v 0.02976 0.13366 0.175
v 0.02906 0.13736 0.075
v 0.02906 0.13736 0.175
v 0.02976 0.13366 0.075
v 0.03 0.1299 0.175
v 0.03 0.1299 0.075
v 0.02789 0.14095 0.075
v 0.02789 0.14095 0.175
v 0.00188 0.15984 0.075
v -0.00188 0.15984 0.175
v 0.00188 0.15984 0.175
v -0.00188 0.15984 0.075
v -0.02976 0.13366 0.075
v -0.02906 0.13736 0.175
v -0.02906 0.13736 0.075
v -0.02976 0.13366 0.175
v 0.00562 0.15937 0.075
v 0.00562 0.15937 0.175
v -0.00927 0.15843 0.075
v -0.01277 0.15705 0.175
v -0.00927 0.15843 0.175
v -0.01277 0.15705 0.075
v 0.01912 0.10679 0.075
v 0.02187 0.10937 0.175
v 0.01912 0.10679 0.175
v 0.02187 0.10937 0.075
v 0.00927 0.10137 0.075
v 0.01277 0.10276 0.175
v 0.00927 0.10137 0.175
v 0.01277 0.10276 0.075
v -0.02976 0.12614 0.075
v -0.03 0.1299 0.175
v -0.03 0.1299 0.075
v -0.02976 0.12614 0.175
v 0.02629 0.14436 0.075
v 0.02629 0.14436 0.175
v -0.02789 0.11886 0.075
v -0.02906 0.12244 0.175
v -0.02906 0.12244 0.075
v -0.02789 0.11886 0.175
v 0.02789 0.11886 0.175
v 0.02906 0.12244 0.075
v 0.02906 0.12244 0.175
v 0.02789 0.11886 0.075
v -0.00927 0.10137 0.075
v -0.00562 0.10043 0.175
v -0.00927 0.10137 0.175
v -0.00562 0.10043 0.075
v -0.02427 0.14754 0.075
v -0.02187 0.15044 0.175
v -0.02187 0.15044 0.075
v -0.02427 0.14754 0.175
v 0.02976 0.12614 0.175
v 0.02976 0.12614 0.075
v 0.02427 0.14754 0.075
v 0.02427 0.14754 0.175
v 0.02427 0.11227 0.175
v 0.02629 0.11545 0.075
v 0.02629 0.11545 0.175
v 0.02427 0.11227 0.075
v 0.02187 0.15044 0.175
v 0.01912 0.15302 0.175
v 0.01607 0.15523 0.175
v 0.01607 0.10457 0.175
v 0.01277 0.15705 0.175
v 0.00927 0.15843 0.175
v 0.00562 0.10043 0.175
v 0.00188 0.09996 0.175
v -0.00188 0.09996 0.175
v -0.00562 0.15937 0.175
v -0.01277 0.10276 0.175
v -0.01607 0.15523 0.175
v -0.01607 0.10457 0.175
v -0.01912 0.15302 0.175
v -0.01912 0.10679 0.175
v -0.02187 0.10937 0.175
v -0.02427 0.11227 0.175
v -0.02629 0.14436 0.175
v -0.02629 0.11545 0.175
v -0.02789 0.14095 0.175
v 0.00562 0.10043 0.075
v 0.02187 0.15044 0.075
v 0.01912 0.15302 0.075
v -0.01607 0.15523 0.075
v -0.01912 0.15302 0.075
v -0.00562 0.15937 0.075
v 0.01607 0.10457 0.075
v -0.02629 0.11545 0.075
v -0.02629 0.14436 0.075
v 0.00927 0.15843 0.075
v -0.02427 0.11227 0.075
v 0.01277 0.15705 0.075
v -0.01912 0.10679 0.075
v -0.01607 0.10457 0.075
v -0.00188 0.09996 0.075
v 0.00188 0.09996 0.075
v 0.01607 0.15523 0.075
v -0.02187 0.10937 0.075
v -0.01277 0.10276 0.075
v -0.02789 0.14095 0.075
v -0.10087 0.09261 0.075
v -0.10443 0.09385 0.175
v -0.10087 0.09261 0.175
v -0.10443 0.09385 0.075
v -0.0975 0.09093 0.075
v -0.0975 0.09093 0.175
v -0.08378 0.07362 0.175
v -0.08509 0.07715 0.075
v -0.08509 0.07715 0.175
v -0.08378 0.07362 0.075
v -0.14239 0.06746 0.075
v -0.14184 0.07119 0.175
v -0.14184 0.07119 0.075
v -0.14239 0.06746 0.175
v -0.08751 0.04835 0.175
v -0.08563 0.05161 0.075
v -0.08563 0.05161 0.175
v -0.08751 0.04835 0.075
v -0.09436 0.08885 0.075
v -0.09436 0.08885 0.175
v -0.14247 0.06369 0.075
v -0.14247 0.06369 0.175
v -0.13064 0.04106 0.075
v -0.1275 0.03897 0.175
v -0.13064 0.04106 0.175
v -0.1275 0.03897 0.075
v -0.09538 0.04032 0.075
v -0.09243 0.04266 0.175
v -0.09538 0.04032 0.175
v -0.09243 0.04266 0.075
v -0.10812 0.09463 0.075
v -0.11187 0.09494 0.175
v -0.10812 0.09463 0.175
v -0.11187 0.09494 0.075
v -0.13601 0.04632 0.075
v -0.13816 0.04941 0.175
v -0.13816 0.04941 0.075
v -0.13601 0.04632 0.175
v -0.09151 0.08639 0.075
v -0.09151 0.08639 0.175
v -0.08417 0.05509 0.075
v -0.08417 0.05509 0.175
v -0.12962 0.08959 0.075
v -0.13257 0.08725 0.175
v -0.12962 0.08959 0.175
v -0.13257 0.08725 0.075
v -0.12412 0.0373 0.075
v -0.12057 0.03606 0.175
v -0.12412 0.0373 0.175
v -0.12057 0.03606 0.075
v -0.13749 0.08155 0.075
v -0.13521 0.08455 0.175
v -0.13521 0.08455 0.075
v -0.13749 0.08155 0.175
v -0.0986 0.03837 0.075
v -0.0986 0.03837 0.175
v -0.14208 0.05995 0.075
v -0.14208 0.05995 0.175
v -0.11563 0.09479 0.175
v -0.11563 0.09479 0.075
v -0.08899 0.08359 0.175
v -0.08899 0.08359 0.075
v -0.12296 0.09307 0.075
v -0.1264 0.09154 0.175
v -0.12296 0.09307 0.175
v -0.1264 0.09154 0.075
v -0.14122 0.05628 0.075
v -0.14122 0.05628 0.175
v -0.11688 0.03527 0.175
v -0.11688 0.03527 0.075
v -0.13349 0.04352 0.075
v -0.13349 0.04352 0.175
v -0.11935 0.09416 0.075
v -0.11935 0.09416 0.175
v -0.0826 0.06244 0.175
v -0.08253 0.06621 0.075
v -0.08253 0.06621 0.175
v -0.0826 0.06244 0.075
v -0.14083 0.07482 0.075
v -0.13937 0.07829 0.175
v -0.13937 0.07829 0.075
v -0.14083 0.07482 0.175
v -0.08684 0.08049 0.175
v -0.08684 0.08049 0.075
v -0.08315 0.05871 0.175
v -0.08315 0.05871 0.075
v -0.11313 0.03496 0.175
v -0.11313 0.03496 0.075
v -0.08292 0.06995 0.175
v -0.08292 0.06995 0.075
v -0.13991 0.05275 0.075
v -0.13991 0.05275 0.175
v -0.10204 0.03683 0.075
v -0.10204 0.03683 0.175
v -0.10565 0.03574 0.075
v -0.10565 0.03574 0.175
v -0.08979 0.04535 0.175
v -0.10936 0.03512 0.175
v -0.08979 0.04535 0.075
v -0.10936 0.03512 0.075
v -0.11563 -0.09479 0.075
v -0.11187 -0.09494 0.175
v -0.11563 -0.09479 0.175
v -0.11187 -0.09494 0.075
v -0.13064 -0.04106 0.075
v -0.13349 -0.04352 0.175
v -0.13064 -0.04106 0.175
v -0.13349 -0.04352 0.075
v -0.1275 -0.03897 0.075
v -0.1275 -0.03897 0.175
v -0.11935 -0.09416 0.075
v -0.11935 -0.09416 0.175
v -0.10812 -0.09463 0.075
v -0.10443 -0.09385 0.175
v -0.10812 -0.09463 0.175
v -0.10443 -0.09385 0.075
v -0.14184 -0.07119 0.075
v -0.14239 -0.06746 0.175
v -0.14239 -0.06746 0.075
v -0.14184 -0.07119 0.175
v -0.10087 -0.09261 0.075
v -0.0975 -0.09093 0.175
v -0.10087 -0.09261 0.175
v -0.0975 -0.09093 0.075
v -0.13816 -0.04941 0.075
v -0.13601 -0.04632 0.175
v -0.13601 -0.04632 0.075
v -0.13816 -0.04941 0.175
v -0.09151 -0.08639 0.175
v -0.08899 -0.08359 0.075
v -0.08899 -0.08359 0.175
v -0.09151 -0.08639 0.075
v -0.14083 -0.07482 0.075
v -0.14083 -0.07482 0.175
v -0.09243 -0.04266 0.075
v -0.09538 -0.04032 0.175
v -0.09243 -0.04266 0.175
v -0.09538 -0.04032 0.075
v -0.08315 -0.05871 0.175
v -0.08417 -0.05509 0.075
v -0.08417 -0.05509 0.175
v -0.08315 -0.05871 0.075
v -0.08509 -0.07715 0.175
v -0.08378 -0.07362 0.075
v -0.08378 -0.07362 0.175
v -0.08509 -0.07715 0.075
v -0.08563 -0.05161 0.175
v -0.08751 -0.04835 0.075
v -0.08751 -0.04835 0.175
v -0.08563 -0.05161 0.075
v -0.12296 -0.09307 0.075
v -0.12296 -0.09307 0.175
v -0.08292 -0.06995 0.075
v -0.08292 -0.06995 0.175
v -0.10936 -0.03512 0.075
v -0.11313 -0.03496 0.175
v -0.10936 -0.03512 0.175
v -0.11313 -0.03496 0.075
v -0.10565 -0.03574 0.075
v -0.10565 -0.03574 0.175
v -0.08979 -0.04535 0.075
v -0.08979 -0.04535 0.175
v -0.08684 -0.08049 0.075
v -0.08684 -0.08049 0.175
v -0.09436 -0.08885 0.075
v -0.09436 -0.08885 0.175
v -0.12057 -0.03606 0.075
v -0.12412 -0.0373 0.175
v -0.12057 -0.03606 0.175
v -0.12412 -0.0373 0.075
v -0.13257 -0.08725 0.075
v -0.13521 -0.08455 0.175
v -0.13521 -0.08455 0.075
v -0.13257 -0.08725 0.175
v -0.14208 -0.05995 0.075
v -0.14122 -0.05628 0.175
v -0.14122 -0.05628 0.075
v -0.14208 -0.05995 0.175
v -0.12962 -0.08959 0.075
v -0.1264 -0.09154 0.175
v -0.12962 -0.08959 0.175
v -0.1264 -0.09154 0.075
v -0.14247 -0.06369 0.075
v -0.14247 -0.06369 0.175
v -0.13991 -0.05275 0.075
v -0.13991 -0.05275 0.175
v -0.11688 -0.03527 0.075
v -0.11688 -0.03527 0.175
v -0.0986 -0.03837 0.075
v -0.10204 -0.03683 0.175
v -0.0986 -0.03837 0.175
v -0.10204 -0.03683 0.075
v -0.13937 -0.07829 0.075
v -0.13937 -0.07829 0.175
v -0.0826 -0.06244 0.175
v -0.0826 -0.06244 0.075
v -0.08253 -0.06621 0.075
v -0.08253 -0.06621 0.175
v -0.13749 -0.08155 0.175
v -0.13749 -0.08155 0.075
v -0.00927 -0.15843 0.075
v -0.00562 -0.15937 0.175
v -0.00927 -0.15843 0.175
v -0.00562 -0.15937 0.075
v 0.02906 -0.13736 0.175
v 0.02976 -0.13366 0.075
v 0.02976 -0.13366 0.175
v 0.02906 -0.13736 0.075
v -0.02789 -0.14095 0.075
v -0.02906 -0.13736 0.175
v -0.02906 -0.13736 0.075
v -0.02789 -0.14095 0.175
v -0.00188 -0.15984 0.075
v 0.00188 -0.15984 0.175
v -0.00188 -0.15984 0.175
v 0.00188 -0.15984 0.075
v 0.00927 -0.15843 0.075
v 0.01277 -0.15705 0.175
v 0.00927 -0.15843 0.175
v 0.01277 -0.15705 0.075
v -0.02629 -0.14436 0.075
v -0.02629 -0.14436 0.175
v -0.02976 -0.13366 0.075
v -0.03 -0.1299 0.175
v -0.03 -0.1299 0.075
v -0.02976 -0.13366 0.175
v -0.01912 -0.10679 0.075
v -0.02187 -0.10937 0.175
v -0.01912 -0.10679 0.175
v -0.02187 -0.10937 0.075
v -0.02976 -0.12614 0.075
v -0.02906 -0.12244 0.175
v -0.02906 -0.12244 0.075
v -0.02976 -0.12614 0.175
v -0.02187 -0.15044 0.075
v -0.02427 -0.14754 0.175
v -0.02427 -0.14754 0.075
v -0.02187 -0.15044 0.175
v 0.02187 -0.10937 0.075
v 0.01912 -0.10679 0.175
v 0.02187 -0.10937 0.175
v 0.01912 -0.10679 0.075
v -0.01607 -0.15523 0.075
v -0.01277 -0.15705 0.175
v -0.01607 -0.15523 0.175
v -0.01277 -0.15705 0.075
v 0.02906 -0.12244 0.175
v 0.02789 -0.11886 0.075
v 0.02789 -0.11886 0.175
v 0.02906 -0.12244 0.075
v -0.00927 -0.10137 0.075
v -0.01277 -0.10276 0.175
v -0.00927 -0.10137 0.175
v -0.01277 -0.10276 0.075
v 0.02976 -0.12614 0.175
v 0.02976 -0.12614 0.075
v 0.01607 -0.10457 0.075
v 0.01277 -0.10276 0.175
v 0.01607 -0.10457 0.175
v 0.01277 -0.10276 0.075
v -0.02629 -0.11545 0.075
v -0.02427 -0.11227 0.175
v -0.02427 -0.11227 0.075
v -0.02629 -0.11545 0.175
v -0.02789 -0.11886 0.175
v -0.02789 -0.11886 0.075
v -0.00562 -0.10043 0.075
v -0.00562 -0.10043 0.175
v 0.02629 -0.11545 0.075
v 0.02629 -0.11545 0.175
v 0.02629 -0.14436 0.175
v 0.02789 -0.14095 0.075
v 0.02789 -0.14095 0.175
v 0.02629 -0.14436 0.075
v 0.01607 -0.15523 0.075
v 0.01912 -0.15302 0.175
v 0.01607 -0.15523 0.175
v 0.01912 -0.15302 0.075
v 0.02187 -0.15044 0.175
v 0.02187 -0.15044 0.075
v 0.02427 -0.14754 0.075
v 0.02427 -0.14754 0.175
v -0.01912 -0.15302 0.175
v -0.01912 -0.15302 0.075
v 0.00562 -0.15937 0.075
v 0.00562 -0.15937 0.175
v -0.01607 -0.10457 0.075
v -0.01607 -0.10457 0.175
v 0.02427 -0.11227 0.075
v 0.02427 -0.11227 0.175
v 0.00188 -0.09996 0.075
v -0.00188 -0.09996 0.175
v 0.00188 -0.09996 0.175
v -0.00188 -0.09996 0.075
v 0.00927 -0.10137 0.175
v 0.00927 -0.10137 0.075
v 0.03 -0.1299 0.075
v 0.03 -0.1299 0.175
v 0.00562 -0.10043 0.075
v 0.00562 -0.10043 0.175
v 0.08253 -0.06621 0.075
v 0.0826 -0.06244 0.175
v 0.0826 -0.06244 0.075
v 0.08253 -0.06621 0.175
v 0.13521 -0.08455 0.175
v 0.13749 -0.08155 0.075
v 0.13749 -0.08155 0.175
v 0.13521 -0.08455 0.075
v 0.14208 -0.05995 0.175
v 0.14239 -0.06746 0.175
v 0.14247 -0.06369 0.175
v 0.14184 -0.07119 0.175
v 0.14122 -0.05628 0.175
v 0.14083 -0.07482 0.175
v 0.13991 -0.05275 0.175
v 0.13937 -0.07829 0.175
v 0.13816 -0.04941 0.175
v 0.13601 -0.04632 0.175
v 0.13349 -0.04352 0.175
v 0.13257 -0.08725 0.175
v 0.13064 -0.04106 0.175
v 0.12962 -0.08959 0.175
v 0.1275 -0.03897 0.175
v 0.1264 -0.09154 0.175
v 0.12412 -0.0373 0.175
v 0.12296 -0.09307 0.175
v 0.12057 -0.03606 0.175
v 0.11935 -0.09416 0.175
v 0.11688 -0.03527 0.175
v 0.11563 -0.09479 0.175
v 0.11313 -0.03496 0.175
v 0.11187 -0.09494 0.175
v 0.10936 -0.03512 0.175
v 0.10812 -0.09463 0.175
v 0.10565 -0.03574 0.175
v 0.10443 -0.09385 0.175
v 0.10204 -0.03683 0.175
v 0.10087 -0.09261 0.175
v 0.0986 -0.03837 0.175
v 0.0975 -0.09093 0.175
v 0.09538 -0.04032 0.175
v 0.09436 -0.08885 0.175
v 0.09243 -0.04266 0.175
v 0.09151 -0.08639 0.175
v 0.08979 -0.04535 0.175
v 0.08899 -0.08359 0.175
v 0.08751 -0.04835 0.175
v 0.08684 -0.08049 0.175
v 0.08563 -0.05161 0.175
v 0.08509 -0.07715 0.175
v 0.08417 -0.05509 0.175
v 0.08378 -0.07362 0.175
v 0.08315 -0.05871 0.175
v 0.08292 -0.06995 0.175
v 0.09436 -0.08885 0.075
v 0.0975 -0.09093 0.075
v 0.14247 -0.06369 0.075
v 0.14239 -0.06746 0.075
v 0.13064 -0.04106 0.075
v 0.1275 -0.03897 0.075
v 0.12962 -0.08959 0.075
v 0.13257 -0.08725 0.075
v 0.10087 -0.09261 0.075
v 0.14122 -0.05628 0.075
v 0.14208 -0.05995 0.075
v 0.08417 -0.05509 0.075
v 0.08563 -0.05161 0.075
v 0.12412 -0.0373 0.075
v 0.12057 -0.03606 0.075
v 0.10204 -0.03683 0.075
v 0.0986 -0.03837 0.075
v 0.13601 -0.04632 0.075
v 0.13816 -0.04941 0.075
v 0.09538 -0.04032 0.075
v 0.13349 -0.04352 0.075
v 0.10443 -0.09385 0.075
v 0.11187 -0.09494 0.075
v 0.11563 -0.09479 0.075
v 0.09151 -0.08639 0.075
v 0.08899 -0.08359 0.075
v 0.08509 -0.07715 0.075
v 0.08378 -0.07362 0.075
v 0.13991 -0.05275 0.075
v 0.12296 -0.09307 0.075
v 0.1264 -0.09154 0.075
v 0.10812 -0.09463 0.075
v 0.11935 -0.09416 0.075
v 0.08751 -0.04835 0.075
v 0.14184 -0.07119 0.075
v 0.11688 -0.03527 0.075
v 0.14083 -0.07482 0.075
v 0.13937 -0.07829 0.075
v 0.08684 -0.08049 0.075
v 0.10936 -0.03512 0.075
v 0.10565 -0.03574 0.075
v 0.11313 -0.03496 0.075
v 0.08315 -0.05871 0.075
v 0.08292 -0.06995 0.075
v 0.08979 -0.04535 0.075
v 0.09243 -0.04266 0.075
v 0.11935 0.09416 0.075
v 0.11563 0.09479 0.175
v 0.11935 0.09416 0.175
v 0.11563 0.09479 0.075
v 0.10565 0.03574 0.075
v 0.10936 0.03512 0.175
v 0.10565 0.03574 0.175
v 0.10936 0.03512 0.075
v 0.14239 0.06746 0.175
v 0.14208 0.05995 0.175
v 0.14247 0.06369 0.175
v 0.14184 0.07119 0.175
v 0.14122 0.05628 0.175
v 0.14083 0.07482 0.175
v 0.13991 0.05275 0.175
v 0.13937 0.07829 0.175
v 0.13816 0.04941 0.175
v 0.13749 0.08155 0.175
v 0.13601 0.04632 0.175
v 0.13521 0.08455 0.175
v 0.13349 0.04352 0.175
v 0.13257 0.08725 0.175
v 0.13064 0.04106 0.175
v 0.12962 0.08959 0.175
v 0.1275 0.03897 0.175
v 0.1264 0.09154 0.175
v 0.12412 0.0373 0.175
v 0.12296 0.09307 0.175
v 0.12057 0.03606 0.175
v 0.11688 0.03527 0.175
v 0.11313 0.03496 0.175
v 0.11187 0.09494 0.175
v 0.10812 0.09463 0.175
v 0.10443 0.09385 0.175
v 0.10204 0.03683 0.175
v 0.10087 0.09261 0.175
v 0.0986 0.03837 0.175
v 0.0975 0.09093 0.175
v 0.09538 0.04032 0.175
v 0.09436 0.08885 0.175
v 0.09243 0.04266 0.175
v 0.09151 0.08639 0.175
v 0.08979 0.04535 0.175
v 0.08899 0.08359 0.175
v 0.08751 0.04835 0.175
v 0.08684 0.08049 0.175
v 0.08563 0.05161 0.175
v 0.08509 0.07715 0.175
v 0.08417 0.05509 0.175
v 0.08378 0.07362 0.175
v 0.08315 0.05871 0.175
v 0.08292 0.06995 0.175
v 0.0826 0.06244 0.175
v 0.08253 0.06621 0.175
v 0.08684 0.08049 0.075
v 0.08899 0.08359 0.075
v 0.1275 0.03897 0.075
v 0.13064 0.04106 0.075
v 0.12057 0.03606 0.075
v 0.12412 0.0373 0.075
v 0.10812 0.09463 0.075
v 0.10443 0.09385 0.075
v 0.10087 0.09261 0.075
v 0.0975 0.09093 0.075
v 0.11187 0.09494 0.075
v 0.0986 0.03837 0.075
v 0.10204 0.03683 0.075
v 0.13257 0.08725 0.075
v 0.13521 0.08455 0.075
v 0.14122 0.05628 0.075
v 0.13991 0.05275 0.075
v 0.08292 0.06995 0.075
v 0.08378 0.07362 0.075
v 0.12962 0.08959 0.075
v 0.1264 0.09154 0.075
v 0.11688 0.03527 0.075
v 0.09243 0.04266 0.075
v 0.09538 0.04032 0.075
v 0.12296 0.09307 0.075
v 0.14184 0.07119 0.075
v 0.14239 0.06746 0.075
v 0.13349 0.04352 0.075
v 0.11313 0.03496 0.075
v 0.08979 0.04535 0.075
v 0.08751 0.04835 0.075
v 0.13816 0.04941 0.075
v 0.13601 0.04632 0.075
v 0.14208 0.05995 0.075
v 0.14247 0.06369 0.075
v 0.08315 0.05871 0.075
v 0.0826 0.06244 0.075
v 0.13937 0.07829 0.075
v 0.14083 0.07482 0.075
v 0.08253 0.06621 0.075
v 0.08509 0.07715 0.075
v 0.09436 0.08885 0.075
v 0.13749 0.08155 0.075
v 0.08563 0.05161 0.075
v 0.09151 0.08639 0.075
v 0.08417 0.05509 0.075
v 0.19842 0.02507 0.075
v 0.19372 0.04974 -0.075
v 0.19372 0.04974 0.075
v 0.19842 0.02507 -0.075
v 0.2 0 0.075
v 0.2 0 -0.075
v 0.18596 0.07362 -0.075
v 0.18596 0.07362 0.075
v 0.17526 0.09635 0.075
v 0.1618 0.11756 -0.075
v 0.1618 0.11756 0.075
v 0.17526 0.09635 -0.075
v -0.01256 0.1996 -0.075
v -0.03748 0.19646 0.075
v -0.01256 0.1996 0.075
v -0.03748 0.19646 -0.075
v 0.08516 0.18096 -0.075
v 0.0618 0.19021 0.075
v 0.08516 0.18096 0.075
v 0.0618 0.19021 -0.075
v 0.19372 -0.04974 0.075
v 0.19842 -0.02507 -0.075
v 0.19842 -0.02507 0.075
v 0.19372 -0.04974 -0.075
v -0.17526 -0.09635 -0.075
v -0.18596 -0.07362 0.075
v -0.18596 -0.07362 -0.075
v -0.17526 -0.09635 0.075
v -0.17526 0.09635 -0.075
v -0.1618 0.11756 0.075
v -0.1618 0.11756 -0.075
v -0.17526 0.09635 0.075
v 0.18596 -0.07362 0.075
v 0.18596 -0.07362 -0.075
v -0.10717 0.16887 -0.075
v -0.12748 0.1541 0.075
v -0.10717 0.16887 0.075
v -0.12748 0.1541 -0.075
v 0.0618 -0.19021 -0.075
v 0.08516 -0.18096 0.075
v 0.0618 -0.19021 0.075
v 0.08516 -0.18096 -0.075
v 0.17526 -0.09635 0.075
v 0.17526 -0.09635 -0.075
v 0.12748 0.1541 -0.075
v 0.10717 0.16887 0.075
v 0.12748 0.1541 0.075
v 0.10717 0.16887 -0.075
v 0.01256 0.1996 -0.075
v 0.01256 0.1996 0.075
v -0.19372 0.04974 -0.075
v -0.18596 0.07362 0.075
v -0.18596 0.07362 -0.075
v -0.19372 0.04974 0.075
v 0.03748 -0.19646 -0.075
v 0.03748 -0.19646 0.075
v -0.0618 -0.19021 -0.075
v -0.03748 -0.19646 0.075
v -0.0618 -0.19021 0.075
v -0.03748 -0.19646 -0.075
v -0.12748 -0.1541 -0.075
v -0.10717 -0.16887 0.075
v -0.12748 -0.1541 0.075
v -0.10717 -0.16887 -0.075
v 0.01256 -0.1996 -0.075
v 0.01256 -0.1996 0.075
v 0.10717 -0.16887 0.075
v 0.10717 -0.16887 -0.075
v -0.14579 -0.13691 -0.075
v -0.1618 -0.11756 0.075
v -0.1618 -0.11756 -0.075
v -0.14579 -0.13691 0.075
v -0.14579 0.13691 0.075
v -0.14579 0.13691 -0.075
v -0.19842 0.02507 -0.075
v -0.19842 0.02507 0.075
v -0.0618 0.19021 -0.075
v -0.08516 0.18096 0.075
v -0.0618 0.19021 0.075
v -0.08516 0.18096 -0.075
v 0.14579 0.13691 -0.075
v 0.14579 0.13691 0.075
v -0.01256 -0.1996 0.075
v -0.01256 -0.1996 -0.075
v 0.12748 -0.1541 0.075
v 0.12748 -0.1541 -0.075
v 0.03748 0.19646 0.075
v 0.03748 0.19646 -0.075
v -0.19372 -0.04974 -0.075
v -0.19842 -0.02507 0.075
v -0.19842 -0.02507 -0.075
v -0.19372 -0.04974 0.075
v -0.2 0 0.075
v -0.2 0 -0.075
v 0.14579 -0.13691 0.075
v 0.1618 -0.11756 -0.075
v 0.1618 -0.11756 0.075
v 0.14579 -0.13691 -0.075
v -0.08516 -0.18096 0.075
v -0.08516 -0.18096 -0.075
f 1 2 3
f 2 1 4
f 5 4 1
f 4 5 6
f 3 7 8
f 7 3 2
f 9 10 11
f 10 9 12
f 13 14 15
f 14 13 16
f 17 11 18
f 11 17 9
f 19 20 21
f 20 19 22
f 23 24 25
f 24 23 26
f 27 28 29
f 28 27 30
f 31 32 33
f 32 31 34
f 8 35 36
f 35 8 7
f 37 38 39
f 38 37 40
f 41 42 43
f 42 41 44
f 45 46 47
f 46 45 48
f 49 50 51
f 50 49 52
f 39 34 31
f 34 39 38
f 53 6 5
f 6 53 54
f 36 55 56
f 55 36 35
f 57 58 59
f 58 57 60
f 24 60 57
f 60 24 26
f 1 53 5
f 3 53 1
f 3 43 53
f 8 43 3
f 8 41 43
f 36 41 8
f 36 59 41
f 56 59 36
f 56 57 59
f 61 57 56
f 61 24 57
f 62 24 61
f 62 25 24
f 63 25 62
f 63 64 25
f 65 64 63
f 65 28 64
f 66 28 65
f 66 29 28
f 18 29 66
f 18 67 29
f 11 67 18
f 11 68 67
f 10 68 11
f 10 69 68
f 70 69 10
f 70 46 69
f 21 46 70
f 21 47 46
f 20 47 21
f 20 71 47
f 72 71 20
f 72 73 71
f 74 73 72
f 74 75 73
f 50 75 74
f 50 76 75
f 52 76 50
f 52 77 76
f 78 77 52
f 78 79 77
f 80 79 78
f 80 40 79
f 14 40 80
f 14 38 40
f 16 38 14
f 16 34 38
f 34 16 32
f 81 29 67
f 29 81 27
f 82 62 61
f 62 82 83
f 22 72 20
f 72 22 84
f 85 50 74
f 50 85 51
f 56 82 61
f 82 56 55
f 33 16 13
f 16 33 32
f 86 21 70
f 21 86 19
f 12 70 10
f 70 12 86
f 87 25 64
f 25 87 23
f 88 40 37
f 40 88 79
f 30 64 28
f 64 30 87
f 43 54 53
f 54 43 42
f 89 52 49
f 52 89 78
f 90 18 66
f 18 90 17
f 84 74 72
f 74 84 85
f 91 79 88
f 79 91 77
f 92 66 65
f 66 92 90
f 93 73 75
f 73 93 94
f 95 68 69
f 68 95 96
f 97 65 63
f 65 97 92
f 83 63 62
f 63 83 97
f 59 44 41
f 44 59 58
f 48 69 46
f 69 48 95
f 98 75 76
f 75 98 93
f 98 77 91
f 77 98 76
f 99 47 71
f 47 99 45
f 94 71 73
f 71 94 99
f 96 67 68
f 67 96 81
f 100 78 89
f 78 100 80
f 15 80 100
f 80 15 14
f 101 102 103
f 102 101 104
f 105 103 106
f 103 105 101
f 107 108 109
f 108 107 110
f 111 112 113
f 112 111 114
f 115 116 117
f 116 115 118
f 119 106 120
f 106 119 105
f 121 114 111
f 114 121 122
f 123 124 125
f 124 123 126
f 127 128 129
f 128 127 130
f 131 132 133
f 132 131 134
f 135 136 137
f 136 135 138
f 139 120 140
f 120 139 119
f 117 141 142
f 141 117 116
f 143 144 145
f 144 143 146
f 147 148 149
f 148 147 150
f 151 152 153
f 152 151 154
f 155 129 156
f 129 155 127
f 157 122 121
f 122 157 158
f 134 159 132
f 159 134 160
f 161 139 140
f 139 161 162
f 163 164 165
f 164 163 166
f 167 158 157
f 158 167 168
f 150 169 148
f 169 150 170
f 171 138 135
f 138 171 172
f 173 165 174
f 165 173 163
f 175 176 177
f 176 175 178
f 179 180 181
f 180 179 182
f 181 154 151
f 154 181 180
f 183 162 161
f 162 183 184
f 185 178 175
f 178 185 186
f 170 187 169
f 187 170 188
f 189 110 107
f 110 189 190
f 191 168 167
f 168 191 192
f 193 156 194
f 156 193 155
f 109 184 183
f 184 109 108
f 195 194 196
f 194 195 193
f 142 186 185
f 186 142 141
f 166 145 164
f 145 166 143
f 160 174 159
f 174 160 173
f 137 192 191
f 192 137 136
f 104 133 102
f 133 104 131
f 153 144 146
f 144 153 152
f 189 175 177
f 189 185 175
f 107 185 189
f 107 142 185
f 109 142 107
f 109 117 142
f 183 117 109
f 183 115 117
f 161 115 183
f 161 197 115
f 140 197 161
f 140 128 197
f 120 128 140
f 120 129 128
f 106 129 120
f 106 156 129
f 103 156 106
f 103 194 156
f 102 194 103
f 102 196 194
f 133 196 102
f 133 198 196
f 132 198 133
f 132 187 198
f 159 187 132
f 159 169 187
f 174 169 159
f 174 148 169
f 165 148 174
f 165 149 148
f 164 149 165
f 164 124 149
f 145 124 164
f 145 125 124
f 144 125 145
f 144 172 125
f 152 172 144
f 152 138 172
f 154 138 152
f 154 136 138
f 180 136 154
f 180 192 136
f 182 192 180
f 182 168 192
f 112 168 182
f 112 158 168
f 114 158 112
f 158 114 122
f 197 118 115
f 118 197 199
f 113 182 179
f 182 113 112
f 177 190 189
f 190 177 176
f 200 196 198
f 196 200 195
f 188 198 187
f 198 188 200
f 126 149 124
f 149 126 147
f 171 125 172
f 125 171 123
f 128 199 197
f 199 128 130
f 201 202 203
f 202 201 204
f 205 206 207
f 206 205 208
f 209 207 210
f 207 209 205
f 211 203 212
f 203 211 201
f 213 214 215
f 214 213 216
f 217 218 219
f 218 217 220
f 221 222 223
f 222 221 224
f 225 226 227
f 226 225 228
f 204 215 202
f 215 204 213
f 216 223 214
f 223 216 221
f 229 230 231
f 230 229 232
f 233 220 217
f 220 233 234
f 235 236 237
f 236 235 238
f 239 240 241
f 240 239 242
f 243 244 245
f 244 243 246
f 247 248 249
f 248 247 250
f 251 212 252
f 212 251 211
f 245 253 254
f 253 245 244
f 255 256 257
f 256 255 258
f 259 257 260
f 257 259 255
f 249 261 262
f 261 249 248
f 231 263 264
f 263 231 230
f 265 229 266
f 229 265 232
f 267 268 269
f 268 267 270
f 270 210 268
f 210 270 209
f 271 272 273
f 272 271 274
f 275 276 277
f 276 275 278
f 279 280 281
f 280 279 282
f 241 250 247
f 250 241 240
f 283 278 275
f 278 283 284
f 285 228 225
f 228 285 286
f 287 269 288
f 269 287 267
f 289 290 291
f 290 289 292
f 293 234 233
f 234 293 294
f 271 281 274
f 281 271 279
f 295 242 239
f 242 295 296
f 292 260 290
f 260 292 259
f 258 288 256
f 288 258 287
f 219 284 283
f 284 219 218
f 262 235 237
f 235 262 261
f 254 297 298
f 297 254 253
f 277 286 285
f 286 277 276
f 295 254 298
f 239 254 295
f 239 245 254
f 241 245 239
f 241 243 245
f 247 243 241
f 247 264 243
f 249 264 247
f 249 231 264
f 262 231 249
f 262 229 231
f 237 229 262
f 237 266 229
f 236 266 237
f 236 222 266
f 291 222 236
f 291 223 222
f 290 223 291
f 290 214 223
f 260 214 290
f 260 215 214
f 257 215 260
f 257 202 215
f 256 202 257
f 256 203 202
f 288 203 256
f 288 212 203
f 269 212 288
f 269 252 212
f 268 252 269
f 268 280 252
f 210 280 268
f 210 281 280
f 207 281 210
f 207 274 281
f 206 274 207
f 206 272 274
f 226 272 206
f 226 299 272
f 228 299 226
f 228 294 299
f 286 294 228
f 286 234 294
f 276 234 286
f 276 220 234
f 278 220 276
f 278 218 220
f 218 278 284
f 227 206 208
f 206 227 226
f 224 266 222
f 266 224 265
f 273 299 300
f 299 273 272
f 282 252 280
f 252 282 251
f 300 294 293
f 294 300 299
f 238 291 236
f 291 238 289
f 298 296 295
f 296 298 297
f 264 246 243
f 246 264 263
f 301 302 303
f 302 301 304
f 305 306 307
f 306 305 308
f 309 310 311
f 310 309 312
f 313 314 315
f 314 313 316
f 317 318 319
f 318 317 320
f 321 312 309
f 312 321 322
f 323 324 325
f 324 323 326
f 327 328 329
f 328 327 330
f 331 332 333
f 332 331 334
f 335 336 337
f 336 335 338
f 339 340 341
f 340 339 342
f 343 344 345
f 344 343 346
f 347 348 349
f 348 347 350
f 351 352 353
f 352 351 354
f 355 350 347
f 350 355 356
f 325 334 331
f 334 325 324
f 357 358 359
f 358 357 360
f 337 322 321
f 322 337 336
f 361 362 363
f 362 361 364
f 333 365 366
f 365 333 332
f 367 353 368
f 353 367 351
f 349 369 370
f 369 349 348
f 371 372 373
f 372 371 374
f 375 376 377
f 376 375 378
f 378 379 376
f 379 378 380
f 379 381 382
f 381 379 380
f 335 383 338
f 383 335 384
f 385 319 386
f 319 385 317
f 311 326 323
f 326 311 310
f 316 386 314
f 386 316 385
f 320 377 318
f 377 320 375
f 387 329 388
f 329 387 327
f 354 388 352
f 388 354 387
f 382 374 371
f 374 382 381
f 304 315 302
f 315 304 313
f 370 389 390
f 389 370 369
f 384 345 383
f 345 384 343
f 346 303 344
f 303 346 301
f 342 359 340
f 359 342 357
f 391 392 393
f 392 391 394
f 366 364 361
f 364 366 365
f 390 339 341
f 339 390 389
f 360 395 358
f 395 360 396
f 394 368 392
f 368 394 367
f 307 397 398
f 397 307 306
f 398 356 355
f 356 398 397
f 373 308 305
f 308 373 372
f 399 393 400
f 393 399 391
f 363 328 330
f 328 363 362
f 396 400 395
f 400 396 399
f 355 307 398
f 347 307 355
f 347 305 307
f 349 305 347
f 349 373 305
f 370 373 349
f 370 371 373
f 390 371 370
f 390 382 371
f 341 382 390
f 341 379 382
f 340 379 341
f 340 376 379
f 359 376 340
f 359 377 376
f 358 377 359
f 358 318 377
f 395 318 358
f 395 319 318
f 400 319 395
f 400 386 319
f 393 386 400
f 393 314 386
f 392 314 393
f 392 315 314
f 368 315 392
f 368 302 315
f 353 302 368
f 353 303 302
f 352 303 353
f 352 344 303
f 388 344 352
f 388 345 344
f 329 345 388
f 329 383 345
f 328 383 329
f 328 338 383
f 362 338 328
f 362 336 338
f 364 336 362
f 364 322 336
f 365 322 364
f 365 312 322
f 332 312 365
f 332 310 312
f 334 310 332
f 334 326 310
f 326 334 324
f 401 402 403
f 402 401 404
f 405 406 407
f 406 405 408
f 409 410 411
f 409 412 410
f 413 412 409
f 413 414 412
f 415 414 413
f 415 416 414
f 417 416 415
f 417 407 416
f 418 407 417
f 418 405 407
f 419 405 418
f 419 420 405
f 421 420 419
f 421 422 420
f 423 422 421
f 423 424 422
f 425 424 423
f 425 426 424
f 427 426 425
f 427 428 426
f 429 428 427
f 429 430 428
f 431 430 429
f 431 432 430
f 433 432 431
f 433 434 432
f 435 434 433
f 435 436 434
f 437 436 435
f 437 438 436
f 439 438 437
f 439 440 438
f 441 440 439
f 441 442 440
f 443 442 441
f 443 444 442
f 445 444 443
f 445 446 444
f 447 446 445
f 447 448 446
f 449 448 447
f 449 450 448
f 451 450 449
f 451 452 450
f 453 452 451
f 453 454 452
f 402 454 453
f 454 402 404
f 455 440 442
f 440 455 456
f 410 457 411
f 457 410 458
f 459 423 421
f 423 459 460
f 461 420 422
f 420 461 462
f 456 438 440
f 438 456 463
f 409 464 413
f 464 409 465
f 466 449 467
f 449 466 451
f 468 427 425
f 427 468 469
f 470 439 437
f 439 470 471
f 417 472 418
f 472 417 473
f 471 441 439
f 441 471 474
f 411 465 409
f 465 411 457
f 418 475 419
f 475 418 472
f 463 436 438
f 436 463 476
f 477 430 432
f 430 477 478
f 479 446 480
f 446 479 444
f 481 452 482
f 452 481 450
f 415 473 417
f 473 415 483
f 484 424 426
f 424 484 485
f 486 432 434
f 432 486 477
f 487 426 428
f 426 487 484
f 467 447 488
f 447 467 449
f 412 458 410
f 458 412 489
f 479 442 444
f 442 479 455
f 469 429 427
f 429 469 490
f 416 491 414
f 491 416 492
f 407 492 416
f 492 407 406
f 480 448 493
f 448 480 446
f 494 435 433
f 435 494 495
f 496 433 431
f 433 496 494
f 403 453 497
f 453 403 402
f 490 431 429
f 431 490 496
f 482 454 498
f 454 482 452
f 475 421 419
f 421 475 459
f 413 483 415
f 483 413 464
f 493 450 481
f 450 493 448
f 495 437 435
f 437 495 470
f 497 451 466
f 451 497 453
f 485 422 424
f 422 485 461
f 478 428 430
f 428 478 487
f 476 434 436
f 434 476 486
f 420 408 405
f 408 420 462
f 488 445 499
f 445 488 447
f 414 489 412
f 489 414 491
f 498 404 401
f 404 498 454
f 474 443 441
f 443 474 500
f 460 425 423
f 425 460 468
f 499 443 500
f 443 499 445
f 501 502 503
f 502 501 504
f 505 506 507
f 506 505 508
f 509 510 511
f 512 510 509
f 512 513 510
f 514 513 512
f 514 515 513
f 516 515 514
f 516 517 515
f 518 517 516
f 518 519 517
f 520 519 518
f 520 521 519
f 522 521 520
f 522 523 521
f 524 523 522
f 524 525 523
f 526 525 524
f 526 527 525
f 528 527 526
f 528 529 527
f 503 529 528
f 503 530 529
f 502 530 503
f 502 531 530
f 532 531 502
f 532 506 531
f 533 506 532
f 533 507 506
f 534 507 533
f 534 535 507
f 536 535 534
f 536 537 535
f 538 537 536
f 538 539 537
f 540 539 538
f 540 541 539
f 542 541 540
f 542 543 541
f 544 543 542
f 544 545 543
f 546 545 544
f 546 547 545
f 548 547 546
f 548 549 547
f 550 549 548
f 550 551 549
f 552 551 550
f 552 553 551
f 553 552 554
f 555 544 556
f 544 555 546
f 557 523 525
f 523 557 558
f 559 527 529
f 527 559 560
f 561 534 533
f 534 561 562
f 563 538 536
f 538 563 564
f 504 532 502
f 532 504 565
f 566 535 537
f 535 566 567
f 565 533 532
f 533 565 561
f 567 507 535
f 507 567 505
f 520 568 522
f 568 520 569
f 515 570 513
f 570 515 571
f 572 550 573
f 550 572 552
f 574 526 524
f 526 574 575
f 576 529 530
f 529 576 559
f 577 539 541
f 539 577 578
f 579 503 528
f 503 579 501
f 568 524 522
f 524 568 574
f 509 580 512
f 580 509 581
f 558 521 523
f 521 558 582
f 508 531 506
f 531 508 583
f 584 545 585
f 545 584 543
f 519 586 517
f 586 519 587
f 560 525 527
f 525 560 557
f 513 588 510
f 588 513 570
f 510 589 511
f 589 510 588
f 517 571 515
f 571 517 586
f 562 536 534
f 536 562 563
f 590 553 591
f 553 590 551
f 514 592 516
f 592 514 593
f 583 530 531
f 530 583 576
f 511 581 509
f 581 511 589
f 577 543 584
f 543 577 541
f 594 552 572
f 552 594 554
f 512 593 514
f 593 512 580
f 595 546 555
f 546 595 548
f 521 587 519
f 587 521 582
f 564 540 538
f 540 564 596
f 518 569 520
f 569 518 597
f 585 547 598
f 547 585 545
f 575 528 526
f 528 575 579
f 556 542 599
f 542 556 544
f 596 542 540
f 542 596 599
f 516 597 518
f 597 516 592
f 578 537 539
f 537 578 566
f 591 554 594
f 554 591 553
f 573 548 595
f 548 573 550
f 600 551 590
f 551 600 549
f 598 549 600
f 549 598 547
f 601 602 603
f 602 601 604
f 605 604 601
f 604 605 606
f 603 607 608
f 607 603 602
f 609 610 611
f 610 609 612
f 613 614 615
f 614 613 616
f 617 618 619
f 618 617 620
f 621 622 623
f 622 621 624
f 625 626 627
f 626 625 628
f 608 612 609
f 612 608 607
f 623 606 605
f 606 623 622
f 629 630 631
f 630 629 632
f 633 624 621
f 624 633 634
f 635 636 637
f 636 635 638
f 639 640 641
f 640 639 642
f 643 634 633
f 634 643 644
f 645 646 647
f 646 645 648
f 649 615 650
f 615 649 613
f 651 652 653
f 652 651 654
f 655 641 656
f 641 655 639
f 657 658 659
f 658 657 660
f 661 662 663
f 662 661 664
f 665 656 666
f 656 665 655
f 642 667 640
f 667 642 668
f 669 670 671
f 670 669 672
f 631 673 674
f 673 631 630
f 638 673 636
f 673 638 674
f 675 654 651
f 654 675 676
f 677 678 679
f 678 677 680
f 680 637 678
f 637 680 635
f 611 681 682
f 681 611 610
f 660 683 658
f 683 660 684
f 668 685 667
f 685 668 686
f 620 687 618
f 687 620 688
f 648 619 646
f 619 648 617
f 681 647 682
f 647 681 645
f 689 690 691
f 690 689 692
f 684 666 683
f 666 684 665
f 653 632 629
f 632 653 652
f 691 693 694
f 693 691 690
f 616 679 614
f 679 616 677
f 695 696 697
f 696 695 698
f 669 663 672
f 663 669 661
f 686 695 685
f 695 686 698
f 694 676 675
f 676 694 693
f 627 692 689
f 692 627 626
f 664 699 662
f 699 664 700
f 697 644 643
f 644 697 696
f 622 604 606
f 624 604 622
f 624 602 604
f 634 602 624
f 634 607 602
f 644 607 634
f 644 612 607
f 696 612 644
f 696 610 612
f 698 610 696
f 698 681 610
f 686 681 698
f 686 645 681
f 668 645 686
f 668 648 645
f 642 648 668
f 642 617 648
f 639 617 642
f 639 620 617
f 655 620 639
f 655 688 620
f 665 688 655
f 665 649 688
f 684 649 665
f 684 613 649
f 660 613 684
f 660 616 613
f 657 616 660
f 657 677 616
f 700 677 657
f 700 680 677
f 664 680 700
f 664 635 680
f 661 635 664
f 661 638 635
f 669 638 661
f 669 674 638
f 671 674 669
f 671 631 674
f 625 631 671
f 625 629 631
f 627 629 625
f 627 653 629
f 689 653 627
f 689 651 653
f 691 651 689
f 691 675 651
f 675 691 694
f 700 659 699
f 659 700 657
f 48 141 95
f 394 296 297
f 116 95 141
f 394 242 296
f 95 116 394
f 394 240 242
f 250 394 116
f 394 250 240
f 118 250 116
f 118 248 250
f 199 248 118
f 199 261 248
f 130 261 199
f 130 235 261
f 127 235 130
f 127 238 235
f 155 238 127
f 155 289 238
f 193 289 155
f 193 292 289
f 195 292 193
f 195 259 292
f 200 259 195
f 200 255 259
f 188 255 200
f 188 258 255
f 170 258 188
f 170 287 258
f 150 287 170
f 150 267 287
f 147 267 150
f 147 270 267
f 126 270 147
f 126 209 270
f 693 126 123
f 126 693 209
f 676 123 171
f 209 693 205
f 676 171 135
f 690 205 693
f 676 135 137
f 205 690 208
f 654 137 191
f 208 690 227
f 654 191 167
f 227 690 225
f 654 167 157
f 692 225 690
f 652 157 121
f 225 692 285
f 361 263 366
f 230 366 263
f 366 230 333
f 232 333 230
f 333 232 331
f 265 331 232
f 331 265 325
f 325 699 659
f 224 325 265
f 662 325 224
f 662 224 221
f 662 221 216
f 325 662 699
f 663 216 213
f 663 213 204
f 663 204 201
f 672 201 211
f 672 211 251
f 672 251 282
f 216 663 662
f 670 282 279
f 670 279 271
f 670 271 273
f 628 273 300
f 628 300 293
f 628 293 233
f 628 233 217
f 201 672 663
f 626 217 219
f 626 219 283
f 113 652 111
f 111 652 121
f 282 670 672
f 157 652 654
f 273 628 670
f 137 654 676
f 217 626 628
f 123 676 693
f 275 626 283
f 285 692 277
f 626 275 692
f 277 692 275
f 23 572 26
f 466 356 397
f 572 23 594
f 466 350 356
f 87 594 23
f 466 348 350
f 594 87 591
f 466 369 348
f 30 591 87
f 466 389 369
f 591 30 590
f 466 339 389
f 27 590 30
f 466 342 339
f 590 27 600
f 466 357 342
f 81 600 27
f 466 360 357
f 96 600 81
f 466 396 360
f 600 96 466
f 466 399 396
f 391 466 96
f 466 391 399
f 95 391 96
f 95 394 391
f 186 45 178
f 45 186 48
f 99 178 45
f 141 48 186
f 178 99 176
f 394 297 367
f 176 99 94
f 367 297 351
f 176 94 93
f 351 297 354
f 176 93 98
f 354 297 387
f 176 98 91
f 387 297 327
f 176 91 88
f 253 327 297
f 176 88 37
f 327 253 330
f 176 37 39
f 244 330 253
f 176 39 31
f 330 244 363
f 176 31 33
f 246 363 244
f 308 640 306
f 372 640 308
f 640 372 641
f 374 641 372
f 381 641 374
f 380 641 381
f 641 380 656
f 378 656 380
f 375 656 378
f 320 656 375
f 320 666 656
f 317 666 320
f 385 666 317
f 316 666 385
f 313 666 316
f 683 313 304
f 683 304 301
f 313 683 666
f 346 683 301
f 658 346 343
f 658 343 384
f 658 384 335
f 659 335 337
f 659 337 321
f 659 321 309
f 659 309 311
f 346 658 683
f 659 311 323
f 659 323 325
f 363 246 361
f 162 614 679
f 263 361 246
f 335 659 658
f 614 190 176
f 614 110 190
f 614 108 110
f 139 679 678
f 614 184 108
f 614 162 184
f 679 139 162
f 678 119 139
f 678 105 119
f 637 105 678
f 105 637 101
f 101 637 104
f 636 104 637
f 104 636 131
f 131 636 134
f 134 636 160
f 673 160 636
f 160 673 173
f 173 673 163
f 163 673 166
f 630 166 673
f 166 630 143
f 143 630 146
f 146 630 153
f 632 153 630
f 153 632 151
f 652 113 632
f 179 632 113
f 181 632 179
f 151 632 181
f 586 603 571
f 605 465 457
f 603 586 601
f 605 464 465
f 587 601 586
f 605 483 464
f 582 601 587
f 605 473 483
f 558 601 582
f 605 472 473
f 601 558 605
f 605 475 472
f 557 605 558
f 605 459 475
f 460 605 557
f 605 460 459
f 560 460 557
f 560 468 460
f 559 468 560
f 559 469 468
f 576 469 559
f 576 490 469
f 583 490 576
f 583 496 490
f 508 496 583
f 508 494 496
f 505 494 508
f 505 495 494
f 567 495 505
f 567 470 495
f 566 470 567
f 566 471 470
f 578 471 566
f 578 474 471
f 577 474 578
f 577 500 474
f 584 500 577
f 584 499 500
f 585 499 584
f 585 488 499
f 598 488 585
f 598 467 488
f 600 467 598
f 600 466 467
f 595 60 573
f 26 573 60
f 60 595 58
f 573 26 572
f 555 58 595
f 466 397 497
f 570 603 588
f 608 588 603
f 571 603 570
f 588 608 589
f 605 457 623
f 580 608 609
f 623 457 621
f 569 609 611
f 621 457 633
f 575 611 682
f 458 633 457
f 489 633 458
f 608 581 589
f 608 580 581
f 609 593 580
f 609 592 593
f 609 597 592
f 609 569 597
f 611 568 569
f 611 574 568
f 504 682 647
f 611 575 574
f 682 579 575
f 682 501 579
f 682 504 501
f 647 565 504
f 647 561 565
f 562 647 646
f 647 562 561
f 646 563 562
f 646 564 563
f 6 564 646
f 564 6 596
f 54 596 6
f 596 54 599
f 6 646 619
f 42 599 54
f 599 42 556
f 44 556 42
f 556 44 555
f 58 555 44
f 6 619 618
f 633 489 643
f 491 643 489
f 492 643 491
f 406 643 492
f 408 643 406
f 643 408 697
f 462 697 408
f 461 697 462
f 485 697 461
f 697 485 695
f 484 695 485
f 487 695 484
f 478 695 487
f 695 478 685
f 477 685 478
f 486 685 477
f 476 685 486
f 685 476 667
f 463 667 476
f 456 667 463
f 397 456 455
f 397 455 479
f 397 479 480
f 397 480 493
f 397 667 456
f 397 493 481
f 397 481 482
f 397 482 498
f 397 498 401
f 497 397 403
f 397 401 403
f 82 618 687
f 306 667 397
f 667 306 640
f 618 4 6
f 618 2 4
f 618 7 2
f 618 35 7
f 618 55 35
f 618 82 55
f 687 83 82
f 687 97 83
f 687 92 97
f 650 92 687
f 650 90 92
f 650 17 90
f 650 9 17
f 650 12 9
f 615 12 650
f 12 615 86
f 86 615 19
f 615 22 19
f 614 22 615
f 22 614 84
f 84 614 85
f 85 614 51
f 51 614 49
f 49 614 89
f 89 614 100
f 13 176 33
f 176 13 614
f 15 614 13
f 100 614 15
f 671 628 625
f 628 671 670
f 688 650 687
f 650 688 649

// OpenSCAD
union(){
  
cylinder(h=0.15,r=0.2,center=true,$fn=50);

for (i = [1:6]){

    rotate([0,0,(i-1)*60])
    translate([0,cos(30)*(0.15),0.15/2])
    cylinder(h=0.2,r=0.03, center = true, $fn=50); 
}
    
} 
